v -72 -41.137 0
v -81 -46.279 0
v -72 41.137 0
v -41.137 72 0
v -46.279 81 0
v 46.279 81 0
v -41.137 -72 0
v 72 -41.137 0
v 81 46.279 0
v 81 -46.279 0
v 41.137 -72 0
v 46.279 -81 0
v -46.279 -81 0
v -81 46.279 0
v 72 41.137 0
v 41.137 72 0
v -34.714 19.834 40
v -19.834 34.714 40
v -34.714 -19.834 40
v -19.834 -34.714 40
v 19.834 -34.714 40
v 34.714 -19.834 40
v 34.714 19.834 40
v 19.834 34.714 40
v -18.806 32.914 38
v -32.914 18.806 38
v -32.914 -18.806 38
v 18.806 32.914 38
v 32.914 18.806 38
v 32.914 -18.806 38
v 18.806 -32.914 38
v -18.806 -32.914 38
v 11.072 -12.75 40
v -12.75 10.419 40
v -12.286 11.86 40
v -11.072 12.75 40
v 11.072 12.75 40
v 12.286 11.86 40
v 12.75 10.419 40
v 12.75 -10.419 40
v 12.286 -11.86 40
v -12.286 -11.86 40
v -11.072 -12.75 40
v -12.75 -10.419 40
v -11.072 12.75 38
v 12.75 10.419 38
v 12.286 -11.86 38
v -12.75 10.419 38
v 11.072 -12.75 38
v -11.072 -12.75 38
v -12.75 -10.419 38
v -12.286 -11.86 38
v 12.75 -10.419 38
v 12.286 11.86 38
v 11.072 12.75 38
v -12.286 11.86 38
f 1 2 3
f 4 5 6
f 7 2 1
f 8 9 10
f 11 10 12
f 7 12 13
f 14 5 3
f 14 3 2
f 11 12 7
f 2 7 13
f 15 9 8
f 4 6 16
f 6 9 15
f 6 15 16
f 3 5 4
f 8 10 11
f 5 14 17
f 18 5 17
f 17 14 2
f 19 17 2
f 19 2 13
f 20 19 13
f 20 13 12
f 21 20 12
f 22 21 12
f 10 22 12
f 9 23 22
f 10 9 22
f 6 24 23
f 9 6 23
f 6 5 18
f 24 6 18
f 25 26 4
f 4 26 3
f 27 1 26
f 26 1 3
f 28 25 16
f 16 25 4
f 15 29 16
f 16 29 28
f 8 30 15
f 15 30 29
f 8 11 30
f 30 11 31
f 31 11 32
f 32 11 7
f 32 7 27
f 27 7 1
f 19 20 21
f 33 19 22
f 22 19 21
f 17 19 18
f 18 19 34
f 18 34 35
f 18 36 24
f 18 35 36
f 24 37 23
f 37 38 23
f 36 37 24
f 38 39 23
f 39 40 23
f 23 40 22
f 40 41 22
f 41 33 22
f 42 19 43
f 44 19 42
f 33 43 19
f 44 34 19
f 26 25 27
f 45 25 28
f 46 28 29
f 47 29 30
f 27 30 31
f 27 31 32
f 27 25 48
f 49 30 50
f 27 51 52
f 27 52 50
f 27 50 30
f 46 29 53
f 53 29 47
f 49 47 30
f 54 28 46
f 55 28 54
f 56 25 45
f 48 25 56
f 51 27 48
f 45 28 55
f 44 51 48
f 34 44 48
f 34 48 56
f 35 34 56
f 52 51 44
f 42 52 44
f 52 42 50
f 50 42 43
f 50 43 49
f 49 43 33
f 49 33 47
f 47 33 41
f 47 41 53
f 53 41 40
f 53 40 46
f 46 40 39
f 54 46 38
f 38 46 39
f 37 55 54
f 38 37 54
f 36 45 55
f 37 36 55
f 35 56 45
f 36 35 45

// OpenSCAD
// file: ../lib/JMO_library.scad
/* MAGNOLIO QUADCOPTER

FILE: JMO_library.scad

AUTHOR: Jose Manuel Ortiz

DESCRIPTION:
General purpose primitive modules

LICENSE:
Magnolio by Kinamics is licensed under a Creative Commons Attribution-ShareAlike 4.0 International License.
http://creativecommons.org/licenses/by-sa/4.0/
*/

//an open case with open base, wall width d and chamfer specified by d1
module case_base_open(l=160, h=32, w=55, d=4, d1=2){
	h1 = sqrt(w*w/4+h*h);
	h2 = h1-d1-d;
	x1 = w*h1/(2*h2);
	y1 = h*h1/h2;
	x2 = d1*w/(2*h1);
	alpha = atan(2*h/w);
	//echo("h1=",h1," h2=",h2," x1=",x1," y1=",y1," x2=",x2, " alpha=",alpha);
	
	rotate([90,0,0])
	translate([0,0,-l/2])
	difference(){
		union(){
			//main box
			translate([w/2,0,0]) cube([d,h,l]);
			translate([0,d/2+h,l/2]) cube([w+2*d,d,l],center=true);
			translate([-w/2-d,0,0]) cube([d,h,l]);
			
			//chamfers
			rotate([0,0,90-alpha])
				translate([0,h2+d/2+d,l/2])
					cube([2*x2+2*d,d,l],center=true);
			rotate([0,0,-90+alpha])
				translate([0,h2+d/2+d,l/2])
					cube([2*x2+2*d,d,l],center=true);
		}
		//remove excess
		rotate([0,0,90-alpha])
				translate([0,h2+3*d,l/2])
					cube([2*x2+2*d,2*d,l+1],center=true);
		rotate([0,0,-90+alpha])
				translate([0,h2+3*d,l/2])
					cube([2*x2+2*d,2*d,l+1],center=true);
		translate([w/2+d,0,-0.5]) cube([d,h+2*d,l+1]);
		translate([0,d+d/2+h,l/2]) cube([w+2*d,d,l+1],center=true);
		translate([-w/2-2*d,0,-0.5]) cube([d,h+3*d,l+1]);
	}
}
//case_base_open();

//Pyramid module: generalization of Openscad manual example
module pyramid_square_base(w=10, l=10, h=10){
	polyhedron(
		points=[ [w/2,l/2,0],[w/2,-l/2,0],[-w/2,-l/2,0],[-w/2,l/2,0], // the four points at base
           [0,0,h]  ],                                 // the apex point 
  faces=[ [0,1,4],[1,2,4],[2,3,4],[3,0,4],              // each triangle side
              [1,0,3],[2,1,3] ]);                         // two triangles for square base
}
//pyramid_square_base(w=150, l=150, h=60);
// main file
/*drone_lid.scad

Drone Lid
---------

Print settings (Sli3r v1.1.7, these are merely my sugestions, not necessarily the best ones):
- Black ABS, 3mm filament
- layer height: 0.3
- perimeters: 4
- Solid layers: 4 (top), 6 (bottom)
- Infill: 25% honeycomb
- Speed: 50mm/s (permeters), 80mm/s (infill)
- Support Material:
	- Overhang threshold: 45º
	- Pattern: pillars
- Brim: 4mm
- Temperature: 240ºC (extruder), 120ºC (bed)

Other info:
- 3mm glass bed with kapton tape
- nozzle diameter: 0.35mm
- bed size: 170 (x), 180 (y)
- G-Code flavor: RepRap Marlin

*/

include <../Magnolio_parts.scad>

drone_lid(only_print=true);
